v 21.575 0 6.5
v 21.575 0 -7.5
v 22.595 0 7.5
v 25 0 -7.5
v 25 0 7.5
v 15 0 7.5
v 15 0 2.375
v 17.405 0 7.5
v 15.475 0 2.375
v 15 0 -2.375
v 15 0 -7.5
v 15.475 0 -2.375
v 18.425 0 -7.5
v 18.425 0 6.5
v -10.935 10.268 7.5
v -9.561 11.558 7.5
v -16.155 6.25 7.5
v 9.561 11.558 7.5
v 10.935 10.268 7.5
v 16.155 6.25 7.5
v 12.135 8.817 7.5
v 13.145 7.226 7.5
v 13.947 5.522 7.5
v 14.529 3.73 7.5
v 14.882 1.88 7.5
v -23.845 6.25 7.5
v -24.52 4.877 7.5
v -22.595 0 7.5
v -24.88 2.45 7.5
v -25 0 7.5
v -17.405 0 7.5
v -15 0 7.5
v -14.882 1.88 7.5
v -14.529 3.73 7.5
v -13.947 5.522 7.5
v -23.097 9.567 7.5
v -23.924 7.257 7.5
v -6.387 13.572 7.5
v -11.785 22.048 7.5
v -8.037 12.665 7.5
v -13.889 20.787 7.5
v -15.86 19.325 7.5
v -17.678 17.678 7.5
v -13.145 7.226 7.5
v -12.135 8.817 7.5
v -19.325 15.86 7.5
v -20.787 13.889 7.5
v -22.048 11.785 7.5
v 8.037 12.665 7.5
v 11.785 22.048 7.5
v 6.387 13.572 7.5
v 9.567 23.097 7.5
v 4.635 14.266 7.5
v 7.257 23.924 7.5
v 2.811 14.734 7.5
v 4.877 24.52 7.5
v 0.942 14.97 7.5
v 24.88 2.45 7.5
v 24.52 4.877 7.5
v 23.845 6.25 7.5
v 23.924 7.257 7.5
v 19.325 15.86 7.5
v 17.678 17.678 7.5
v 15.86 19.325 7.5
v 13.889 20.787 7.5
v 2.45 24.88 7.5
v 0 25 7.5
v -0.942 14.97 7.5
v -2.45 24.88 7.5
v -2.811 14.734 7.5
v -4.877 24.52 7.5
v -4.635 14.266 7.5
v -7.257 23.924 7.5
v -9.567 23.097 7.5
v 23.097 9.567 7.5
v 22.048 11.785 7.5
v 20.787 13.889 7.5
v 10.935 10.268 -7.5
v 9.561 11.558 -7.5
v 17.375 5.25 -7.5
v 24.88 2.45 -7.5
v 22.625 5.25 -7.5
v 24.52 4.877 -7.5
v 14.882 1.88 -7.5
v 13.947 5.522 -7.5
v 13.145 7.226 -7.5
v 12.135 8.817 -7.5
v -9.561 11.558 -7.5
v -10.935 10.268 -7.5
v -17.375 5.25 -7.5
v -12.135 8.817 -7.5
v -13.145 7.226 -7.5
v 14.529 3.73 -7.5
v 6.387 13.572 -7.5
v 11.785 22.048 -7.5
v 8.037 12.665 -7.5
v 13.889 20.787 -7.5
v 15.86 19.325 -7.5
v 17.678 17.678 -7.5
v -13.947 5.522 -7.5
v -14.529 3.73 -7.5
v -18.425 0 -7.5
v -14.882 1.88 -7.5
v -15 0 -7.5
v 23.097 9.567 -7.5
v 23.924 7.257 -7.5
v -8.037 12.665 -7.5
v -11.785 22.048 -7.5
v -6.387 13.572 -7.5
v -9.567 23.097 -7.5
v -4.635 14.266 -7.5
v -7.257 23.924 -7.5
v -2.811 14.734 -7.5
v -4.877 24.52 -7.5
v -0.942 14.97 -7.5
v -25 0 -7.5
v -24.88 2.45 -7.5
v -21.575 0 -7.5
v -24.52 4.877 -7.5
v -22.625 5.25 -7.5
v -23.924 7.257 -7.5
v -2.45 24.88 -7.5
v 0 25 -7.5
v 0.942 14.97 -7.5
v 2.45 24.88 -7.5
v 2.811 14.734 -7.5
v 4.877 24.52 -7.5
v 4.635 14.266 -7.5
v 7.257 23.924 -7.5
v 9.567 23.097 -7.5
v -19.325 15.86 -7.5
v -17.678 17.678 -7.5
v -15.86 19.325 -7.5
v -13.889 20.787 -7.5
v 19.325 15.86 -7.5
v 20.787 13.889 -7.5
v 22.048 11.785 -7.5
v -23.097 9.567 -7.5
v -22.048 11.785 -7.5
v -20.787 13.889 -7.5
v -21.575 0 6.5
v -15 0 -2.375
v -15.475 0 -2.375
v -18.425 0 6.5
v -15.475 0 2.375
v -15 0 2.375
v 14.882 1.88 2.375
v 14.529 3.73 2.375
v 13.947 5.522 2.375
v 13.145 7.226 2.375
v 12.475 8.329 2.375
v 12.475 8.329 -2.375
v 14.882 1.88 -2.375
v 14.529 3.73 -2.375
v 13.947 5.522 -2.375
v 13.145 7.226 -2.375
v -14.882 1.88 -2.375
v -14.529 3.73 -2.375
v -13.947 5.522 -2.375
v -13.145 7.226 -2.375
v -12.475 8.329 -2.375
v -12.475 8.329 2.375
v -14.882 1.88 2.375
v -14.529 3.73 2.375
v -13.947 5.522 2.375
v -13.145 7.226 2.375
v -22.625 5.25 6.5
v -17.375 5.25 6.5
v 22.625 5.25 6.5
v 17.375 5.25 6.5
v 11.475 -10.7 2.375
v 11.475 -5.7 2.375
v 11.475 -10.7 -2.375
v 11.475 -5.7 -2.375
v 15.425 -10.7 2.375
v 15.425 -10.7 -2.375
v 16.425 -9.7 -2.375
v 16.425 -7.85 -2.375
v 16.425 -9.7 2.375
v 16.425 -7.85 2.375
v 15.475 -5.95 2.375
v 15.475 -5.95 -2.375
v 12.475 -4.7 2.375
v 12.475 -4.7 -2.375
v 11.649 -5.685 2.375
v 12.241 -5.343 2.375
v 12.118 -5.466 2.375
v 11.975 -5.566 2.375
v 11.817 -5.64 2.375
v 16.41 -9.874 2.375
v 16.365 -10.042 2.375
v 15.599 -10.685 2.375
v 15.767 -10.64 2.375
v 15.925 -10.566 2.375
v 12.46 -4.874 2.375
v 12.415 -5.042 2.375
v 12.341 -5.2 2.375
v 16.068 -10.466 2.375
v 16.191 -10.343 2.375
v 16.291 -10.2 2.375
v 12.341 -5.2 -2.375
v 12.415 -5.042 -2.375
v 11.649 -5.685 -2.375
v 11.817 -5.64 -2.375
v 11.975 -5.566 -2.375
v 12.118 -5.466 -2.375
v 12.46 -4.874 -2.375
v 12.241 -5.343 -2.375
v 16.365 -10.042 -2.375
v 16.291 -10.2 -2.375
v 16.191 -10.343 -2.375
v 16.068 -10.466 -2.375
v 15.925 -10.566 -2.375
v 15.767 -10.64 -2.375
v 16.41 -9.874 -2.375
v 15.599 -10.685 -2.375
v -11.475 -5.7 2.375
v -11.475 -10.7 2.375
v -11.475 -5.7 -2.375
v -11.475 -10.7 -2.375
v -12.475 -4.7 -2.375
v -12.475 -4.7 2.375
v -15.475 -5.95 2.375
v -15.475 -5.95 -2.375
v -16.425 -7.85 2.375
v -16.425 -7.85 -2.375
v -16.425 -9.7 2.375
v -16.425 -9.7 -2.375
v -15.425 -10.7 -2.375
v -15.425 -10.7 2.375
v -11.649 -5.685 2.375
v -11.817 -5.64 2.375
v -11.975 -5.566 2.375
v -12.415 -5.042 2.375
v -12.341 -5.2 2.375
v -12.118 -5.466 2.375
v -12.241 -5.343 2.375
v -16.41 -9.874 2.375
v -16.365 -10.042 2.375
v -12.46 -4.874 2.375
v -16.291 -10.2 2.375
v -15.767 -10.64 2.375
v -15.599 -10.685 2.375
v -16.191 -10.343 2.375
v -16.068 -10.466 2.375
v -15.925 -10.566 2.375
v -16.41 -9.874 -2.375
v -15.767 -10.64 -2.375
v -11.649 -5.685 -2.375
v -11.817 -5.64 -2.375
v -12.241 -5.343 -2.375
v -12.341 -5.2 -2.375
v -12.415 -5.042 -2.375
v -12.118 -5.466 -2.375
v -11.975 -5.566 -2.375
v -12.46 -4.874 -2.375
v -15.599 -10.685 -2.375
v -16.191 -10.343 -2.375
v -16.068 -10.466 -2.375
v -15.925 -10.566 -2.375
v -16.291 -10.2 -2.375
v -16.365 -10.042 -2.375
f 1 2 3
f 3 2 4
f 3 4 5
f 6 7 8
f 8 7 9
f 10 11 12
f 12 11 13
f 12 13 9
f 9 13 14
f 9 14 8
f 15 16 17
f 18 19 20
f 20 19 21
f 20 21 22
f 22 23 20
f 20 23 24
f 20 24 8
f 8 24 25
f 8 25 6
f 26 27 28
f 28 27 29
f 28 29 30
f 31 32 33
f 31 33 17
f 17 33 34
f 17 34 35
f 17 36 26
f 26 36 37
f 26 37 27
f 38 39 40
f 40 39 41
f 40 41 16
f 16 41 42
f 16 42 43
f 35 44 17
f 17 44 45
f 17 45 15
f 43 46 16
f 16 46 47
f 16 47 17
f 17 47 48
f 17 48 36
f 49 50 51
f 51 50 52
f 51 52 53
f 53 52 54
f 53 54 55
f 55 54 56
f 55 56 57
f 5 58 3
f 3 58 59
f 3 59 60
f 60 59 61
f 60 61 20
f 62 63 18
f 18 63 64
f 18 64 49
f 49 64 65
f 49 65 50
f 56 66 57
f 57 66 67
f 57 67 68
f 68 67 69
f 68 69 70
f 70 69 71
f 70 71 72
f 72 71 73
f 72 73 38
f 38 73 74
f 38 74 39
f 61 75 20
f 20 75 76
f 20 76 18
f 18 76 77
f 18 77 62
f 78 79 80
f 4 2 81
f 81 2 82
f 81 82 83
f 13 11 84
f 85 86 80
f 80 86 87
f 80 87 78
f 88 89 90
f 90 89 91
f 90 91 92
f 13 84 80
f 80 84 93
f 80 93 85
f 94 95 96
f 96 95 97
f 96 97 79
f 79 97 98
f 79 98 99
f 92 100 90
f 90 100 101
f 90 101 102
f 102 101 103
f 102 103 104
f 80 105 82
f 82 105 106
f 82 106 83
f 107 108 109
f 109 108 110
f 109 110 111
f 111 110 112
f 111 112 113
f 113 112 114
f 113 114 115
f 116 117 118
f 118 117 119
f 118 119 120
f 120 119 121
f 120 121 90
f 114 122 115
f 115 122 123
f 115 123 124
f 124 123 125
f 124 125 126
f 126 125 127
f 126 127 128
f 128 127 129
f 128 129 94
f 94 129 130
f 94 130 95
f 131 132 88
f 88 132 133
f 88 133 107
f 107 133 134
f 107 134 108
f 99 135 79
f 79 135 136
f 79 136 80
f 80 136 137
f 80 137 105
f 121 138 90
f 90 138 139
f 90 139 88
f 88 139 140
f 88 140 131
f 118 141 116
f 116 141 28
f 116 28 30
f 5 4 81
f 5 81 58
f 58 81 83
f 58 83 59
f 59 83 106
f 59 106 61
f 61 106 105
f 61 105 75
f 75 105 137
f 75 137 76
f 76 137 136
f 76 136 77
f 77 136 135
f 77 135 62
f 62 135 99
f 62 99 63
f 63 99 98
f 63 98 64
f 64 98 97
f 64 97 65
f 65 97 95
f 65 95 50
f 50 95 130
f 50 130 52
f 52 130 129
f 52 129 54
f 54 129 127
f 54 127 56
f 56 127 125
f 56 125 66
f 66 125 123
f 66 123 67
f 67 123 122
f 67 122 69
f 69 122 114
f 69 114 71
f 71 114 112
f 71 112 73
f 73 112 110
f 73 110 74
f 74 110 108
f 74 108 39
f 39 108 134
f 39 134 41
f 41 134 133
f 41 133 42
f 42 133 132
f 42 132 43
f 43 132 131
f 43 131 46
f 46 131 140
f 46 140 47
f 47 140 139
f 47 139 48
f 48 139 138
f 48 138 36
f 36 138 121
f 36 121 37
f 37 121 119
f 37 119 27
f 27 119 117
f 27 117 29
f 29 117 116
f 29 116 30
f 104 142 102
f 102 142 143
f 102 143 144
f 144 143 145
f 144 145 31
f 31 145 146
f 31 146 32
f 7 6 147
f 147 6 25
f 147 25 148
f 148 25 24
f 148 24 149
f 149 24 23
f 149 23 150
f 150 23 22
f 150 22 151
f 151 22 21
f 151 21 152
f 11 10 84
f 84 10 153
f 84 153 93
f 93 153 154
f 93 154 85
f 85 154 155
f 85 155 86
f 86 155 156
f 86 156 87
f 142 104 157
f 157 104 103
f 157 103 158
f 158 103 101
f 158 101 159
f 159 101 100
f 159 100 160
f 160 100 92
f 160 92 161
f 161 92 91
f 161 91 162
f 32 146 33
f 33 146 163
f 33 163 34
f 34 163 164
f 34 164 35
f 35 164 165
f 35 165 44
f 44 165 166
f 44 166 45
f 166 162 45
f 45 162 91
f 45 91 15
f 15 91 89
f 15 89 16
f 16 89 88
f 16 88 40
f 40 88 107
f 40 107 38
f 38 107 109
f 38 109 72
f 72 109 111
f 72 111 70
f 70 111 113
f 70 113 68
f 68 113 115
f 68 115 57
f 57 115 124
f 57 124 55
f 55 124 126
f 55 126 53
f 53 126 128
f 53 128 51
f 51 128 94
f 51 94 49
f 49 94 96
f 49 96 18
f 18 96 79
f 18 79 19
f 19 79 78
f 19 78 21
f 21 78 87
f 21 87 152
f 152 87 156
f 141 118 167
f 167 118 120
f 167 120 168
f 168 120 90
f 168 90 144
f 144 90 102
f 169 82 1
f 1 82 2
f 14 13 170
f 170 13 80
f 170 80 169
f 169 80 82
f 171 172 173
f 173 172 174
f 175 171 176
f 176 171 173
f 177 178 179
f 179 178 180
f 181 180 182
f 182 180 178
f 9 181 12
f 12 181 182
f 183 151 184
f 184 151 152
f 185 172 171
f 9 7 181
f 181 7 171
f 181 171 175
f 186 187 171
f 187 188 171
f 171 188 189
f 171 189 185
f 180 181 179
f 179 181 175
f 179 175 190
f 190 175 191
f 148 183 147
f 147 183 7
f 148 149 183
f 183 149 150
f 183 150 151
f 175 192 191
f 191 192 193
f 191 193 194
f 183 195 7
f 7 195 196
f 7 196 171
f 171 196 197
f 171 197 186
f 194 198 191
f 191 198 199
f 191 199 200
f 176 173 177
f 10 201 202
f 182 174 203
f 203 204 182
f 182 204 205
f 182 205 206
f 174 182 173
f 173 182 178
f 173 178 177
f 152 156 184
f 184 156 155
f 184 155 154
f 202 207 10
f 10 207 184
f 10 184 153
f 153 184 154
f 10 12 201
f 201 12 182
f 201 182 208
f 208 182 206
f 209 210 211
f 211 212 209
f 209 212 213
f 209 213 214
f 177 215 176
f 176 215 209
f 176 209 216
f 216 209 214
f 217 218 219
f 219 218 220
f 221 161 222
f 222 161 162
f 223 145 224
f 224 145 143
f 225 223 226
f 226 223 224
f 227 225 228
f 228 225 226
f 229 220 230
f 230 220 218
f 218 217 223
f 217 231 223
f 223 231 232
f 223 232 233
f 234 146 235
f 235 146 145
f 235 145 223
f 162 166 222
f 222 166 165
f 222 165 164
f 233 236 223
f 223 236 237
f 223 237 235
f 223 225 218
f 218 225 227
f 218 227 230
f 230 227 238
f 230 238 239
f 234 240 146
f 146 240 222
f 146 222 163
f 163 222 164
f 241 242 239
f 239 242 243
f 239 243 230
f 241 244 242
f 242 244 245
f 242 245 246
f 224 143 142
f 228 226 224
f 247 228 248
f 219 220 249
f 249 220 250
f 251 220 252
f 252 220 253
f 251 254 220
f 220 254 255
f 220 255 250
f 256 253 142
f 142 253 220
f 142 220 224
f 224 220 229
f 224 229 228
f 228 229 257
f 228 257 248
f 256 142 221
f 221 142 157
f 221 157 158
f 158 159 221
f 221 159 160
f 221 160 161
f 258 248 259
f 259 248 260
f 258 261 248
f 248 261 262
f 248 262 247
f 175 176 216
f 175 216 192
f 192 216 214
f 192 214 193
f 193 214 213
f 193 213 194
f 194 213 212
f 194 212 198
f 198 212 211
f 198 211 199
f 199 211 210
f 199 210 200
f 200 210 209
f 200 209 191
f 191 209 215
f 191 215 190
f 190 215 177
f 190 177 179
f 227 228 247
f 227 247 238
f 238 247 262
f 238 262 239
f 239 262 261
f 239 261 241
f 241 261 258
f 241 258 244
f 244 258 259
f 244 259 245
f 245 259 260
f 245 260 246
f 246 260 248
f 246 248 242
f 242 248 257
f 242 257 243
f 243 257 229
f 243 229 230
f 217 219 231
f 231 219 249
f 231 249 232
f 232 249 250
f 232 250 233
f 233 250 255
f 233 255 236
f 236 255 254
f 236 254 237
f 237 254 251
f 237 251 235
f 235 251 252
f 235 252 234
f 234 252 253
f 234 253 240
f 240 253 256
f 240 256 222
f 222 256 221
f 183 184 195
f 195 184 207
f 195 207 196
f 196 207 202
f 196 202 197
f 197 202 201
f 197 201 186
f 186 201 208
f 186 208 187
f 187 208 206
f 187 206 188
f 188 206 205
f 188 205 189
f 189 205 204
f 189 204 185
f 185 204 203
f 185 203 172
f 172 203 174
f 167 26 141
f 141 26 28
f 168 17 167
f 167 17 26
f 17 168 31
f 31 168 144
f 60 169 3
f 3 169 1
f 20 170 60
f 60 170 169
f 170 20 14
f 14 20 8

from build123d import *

# Parameters (mm, degrees)
BOSS_EXTRUDE1_DEPTH = 7.5
CUT_EXTRUDE1_DEPTH  = 39.405728739
BOSS_EXTRUDE3_DEPTH = 2.375
FILLET1_R           = 1
FILLET2_R           = 1
FILLET3_R           = 1
FILLET4_R           = 1
CHAMFER1_SIZE       = 1
CHAMFER2_SIZE       = 1


with BuildPart() as part:
    # Sketch1 → Boss-Extrude1 (new, symmetric)
    with BuildSketch(Plane.XY):
        with BuildLine():
            Line((-25, 0), (-15, 0))
            ThreePointArc((-15, 0), (0, 15), (15, 0))
            Line((15, 0), (25, 0))
            ThreePointArc((25, 0), (0, 25), (-25, 0))
        make_face()
    extrude(amount=BOSS_EXTRUDE1_DEPTH, both=True)

    # Sketch2 → Cut-Extrude1 (cut, through all)
    with BuildSketch(Plane.XY.offset(7.5)):
        Polygon((-22.625, 5.25), (-17.375, 5.25), (-18.425, 0), (-21.575, 0), align=None)
    cut_extrude1 = extrude(amount=-CUT_EXTRUDE1_DEPTH, mode=Mode.SUBTRACT)

    # Mirror1: Cut-Extrude1 across plane
    add(cut_extrude1.mirror(Plane(origin=(0, 0, 0), x_dir=(0, 0, 1), z_dir=(1, 0, 0))), mode=Mode.SUBTRACT)

    # Sketch3 → Boss-Extrude3 (add, symmetric)
    with BuildSketch(Plane.XY):
        with BuildLine():
            Line((12.475, 8.329128106), (12.475, -5.7))
            Line((12.475, -5.7), (11.475, -5.7))
            Line((11.475, -5.7), (11.475, -10.7))
            Line((11.475, -10.7), (16.425, -10.7))
            Line((16.425, -10.7), (16.425, -7.85))
            Line((16.425, -7.85), (15.475, -5.95))
            Line((15.475, -5.95), (15.475, 0))
            Line((15.475, 0), (15, 0))
            ThreePointArc((15, 0), (14.35487722, 4.351723796), (12.475, 8.329128106))
        make_face()
    boss_extrude3 = extrude(amount=BOSS_EXTRUDE3_DEPTH, both=True)

    # Mirror11: Boss-Extrude3 across plane
    add(boss_extrude3.mirror(Plane(origin=(0, 0, 0), x_dir=(0, 0, 1), z_dir=(1, 0, 0))))

    # Fillet1
    fillet1_edges = [part.edges().sort_by_distance(p)[0] for p in [
        (16.425, -10.7, 0),
    ]]
    fillet(fillet1_edges, radius=FILLET1_R)

    # Fillet2
    fillet2_edges = [part.edges().sort_by_distance(p)[0] for p in [
        (-16.425, -10.7, 0),
    ]]
    fillet(fillet2_edges, radius=FILLET2_R)

    # Fillet3
    fillet3_edges = [part.edges().sort_by_distance(p)[0] for p in [
        (-12.475, -5.7, 0),
    ]]
    fillet(fillet3_edges, radius=FILLET3_R - 0.0001)  # a hair under: the kernel refuses the full size

    # Fillet4
    fillet4_edges = [part.edges().sort_by_distance(p)[0] for p in [
        (12.475, -5.7, 0),
    ]]
    fillet(fillet4_edges, radius=FILLET4_R - 0.0001)  # a hair under: the kernel refuses the full size

    # Chamfer1
    chamfer1_edges = [part.edges().sort_by_distance(p)[0] for p in [
        (-20, 5.25, 7.5),
        (-22.1, 2.625, 7.5),
        (-17.9, 2.625, 7.5),
    ]]
    chamfer(chamfer1_edges, length=CHAMFER1_SIZE)

    # Chamfer2
    chamfer2_edges = [part.edges().sort_by_distance(p)[0] for p in [
        (22.1, 2.625, 7.5),
        (17.9, 2.625, 7.5),
        (20, 5.25, 7.5),
    ]]
    chamfer(chamfer2_edges, length=CHAMFER2_SIZE)


solid = part.part
